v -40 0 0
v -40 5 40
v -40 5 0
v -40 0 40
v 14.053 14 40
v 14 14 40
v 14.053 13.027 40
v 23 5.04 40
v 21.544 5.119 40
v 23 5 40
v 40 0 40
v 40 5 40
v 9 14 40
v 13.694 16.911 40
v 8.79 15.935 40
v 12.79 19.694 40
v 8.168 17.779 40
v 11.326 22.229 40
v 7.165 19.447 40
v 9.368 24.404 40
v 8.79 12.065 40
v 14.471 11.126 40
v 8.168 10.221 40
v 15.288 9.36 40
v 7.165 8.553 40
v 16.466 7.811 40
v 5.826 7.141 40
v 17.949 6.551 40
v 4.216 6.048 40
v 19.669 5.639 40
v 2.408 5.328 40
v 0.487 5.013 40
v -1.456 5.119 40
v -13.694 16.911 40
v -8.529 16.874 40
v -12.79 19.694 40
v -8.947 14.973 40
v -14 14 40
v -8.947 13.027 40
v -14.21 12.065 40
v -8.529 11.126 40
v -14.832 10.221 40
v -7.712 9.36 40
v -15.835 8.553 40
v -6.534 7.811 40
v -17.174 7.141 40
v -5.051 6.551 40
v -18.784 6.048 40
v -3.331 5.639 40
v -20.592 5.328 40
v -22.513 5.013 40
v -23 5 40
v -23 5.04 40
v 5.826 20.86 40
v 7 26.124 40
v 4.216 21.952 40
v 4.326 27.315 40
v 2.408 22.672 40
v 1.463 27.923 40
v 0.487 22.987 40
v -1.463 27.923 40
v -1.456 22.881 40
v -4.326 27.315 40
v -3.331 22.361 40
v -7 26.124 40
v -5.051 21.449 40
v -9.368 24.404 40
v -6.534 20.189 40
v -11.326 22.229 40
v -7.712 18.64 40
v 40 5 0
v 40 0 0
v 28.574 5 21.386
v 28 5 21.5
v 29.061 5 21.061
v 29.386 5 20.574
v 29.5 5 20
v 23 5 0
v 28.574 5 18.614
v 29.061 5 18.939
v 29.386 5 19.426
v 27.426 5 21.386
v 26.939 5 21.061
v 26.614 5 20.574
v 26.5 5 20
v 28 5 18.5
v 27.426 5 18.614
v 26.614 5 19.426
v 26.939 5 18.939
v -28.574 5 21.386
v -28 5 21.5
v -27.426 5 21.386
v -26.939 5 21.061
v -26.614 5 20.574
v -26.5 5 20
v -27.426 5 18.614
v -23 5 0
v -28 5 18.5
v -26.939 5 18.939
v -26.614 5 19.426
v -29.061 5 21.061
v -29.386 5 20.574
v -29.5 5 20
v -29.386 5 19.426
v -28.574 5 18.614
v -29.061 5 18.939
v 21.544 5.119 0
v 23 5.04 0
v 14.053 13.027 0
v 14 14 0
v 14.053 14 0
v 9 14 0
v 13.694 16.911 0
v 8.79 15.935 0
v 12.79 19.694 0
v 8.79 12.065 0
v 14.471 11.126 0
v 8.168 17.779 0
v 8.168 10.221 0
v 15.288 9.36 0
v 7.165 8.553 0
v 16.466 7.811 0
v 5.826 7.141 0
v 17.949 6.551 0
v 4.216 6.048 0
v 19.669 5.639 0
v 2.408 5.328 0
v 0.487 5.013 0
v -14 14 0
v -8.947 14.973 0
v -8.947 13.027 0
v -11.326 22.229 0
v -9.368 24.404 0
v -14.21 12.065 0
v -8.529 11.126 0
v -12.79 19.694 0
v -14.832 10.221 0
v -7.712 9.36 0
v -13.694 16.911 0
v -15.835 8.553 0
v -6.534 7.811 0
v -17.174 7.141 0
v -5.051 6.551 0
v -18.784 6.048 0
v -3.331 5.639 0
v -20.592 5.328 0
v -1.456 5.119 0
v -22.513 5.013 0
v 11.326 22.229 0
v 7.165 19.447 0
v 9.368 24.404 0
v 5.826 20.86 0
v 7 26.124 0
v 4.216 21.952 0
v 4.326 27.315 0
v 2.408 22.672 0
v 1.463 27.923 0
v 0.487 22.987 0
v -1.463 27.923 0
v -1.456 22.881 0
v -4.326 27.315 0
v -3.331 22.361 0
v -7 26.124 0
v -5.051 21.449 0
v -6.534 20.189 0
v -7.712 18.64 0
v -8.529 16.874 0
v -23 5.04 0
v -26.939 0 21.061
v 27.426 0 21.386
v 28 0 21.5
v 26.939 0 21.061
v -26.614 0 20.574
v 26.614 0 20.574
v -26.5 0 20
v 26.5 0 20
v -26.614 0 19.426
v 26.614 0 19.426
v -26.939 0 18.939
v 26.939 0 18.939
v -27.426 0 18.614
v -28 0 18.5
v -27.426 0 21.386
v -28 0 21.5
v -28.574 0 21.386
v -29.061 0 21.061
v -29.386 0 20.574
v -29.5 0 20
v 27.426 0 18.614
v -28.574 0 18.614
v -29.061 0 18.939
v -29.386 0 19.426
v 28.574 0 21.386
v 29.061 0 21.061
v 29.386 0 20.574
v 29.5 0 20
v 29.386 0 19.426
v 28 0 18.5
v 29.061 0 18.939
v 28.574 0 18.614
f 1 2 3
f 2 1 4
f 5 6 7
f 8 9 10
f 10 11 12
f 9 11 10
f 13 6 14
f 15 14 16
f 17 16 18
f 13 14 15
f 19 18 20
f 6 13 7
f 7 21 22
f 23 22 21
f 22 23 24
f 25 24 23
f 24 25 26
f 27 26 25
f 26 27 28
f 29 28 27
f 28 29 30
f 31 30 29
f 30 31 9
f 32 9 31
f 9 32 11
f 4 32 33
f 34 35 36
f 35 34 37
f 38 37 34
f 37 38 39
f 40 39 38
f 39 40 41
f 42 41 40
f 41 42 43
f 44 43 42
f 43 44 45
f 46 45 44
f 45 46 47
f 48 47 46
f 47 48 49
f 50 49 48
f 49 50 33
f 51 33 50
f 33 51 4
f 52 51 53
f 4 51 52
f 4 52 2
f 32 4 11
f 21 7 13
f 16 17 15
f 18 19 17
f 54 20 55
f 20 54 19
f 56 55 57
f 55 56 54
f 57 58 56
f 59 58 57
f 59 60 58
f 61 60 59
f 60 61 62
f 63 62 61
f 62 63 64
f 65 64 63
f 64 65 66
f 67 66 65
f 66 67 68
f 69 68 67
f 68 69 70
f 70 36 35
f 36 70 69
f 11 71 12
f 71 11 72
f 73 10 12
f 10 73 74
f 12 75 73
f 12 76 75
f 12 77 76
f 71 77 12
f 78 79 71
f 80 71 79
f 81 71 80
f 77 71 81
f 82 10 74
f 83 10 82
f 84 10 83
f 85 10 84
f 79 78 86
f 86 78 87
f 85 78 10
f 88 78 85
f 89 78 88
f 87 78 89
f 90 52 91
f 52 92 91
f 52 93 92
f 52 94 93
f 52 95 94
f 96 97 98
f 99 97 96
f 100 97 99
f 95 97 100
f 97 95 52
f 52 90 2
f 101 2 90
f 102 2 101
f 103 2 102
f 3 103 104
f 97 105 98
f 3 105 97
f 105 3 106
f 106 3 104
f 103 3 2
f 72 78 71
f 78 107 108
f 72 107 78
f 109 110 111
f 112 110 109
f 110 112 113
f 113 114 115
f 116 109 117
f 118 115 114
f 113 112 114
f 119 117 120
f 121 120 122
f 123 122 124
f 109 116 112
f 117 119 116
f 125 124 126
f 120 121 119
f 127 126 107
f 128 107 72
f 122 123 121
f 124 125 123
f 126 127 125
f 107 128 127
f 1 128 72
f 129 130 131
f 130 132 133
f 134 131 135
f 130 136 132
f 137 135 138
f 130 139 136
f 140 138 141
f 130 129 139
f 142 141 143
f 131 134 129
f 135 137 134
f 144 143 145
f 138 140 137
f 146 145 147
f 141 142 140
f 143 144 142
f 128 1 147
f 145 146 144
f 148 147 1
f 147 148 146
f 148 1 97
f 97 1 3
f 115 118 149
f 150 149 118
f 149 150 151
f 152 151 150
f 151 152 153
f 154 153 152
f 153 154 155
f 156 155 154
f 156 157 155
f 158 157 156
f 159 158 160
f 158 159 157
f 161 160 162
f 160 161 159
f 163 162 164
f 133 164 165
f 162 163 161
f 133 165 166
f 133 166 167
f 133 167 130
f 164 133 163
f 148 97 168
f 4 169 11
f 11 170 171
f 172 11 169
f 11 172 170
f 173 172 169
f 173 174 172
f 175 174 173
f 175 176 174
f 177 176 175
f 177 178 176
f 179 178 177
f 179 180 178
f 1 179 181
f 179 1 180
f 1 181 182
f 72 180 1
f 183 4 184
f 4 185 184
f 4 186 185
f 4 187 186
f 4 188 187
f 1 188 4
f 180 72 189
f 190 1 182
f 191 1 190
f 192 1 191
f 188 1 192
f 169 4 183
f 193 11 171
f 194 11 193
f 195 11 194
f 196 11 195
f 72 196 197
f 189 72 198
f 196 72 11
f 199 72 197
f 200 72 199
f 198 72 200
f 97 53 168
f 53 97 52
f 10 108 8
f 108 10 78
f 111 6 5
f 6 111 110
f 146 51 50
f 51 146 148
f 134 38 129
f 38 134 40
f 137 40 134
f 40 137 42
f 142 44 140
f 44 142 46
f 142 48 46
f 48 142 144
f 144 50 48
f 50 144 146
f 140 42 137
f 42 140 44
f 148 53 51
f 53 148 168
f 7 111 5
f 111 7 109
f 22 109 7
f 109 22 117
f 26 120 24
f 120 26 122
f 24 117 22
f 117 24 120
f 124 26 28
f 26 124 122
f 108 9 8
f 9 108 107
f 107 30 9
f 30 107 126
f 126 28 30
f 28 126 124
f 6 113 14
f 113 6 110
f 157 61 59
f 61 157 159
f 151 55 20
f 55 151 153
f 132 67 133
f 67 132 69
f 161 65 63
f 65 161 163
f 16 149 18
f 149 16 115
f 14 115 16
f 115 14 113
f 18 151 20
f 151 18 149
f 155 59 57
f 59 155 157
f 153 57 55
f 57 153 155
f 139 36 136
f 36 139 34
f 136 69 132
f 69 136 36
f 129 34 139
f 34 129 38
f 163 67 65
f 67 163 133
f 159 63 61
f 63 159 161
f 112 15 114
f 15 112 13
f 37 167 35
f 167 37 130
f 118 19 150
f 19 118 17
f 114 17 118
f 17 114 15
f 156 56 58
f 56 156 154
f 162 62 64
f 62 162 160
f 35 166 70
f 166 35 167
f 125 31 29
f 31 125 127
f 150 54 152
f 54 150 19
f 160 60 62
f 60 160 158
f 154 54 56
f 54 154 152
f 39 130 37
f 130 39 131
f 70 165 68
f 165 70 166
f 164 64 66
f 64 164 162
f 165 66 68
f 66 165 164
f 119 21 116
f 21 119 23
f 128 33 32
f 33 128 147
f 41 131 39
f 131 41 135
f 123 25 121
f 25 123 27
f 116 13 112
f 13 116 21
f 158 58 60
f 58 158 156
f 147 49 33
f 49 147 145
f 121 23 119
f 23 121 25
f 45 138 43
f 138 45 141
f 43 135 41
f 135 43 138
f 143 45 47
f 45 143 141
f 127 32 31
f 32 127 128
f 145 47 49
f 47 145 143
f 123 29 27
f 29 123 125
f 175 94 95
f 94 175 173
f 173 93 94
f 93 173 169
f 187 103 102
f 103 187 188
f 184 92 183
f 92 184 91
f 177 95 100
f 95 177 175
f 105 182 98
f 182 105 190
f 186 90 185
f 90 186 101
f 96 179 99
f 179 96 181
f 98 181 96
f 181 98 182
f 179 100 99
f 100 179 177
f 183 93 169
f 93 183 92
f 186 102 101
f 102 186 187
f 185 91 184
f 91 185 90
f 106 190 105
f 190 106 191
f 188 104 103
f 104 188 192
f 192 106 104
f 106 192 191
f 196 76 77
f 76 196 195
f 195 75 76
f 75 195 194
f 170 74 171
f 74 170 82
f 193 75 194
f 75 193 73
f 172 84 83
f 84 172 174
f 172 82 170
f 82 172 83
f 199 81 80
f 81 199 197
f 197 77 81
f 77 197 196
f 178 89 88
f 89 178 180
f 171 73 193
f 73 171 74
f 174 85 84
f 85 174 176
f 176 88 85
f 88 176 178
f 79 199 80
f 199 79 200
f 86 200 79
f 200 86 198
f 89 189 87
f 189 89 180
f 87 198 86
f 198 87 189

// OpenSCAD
difference() {
	difference() {
		difference() {
			union() {
				difference() {
					difference() {
						union() {
							translate(v = [-40.0000000000, 0, 0]) {
								cube(size = [80.0000000000, 5.0000000000, 40.0000000000]);
							}
							translate(v = [-23.0000000000, 0, 0]) {
								cube(size = [46.0000000000, 14.0000000000, 40.0000000000]);
							}
						}
						translate(v = [-23.0000000000, 0, 0]) {
							translate(v = [0, 14.0000000000, 0]) {
								cylinder(h = 40.0000000000, r = 9.0000000000);
							}
						}
					}
					translate(v = [23.0000000000, 0, 0]) {
						translate(v = [0, 14.0000000000, 0]) {
							cylinder(h = 40.0000000000, r = 9.0000000000);
						}
					}
				}
				translate(v = [0, 14.0000000000, 0]) {
					cylinder(h = 40.0000000000, r = 14.0000000000);
				}
			}
			translate(v = [0, 14.0000000000, 0]) {
				cylinder(h = 40.0000000000, r = 9.0000000000);
			}
		}
		translate(v = [-28.0000000000, 0, 0]) {
			translate(v = [0, 0, 20.0000000000]) {
				translate(v = [0, 7.0000000000, 0]) {
					rotate(a = [90, 0, 0]) {
						cylinder($fn = 16, h = 9.0000000000, r = 1.5000000000);
					}
				}
			}
		}
	}
	translate(v = [28.0000000000, 0, 0]) {
		translate(v = [0, 0, 20.0000000000]) {
			translate(v = [0, 7.0000000000, 0]) {
				rotate(a = [90, 0, 0]) {
					cylinder($fn = 16, h = 9.0000000000, r = 1.5000000000);
				}
			}
		}
	}
}
/***********************************************
*********      SolidPython code:      **********
************************************************
 

from solid import *
from solid.utils import *

height = 40.0
length = 80.0
wall_width = 5.0
inner_diameter = 18.0
outer_diameter = inner_diameter + wall_width * 2 # 28
outer_radius = outer_diameter / 2.0 # 14
inner_radius = inner_diameter / 2.0 # 9
filler_end = (outer_diameter + inner_diameter) / 2.0
screw_diameter = 3.0

backing = left(length / 2.0)(
    cube(size=[length,wall_width,height])
)

filler = left(filler_end)(
    cube(size=[outer_diameter + inner_diameter,
               outer_radius, height])
)

filler_curve = forward(inner_radius + wall_width)(
    cylinder(h=height, r=inner_radius)
)

filler_curve1 = left(filler_end)(filler_curve)
filler_curve2 = right(filler_end)(filler_curve)

housing = forward(outer_radius)(
    cylinder(h=height, r=outer_radius)
)

hole = forward(outer_radius)(
    cylinder(h=height, r=inner_radius)
)

screw = up(height / 2.0)(
    forward(wall_width + 2)(
        rotate(a=[90,0,0])(
            cylinder(h=wall_width + 4, r=screw_diameter / 2.0, segments=16)
        )
    )
)
screw1 = left(length * 0.35)(screw)
screw2 = right(length * 0.35)(screw)

final = backing + \
        filler - filler_curve1 - filler_curve2 + \
        housing - hole - screw1 - screw2

scad_render_to_file(final, __file__.replace('.py', '.scad'))
 
 
************************************************/
